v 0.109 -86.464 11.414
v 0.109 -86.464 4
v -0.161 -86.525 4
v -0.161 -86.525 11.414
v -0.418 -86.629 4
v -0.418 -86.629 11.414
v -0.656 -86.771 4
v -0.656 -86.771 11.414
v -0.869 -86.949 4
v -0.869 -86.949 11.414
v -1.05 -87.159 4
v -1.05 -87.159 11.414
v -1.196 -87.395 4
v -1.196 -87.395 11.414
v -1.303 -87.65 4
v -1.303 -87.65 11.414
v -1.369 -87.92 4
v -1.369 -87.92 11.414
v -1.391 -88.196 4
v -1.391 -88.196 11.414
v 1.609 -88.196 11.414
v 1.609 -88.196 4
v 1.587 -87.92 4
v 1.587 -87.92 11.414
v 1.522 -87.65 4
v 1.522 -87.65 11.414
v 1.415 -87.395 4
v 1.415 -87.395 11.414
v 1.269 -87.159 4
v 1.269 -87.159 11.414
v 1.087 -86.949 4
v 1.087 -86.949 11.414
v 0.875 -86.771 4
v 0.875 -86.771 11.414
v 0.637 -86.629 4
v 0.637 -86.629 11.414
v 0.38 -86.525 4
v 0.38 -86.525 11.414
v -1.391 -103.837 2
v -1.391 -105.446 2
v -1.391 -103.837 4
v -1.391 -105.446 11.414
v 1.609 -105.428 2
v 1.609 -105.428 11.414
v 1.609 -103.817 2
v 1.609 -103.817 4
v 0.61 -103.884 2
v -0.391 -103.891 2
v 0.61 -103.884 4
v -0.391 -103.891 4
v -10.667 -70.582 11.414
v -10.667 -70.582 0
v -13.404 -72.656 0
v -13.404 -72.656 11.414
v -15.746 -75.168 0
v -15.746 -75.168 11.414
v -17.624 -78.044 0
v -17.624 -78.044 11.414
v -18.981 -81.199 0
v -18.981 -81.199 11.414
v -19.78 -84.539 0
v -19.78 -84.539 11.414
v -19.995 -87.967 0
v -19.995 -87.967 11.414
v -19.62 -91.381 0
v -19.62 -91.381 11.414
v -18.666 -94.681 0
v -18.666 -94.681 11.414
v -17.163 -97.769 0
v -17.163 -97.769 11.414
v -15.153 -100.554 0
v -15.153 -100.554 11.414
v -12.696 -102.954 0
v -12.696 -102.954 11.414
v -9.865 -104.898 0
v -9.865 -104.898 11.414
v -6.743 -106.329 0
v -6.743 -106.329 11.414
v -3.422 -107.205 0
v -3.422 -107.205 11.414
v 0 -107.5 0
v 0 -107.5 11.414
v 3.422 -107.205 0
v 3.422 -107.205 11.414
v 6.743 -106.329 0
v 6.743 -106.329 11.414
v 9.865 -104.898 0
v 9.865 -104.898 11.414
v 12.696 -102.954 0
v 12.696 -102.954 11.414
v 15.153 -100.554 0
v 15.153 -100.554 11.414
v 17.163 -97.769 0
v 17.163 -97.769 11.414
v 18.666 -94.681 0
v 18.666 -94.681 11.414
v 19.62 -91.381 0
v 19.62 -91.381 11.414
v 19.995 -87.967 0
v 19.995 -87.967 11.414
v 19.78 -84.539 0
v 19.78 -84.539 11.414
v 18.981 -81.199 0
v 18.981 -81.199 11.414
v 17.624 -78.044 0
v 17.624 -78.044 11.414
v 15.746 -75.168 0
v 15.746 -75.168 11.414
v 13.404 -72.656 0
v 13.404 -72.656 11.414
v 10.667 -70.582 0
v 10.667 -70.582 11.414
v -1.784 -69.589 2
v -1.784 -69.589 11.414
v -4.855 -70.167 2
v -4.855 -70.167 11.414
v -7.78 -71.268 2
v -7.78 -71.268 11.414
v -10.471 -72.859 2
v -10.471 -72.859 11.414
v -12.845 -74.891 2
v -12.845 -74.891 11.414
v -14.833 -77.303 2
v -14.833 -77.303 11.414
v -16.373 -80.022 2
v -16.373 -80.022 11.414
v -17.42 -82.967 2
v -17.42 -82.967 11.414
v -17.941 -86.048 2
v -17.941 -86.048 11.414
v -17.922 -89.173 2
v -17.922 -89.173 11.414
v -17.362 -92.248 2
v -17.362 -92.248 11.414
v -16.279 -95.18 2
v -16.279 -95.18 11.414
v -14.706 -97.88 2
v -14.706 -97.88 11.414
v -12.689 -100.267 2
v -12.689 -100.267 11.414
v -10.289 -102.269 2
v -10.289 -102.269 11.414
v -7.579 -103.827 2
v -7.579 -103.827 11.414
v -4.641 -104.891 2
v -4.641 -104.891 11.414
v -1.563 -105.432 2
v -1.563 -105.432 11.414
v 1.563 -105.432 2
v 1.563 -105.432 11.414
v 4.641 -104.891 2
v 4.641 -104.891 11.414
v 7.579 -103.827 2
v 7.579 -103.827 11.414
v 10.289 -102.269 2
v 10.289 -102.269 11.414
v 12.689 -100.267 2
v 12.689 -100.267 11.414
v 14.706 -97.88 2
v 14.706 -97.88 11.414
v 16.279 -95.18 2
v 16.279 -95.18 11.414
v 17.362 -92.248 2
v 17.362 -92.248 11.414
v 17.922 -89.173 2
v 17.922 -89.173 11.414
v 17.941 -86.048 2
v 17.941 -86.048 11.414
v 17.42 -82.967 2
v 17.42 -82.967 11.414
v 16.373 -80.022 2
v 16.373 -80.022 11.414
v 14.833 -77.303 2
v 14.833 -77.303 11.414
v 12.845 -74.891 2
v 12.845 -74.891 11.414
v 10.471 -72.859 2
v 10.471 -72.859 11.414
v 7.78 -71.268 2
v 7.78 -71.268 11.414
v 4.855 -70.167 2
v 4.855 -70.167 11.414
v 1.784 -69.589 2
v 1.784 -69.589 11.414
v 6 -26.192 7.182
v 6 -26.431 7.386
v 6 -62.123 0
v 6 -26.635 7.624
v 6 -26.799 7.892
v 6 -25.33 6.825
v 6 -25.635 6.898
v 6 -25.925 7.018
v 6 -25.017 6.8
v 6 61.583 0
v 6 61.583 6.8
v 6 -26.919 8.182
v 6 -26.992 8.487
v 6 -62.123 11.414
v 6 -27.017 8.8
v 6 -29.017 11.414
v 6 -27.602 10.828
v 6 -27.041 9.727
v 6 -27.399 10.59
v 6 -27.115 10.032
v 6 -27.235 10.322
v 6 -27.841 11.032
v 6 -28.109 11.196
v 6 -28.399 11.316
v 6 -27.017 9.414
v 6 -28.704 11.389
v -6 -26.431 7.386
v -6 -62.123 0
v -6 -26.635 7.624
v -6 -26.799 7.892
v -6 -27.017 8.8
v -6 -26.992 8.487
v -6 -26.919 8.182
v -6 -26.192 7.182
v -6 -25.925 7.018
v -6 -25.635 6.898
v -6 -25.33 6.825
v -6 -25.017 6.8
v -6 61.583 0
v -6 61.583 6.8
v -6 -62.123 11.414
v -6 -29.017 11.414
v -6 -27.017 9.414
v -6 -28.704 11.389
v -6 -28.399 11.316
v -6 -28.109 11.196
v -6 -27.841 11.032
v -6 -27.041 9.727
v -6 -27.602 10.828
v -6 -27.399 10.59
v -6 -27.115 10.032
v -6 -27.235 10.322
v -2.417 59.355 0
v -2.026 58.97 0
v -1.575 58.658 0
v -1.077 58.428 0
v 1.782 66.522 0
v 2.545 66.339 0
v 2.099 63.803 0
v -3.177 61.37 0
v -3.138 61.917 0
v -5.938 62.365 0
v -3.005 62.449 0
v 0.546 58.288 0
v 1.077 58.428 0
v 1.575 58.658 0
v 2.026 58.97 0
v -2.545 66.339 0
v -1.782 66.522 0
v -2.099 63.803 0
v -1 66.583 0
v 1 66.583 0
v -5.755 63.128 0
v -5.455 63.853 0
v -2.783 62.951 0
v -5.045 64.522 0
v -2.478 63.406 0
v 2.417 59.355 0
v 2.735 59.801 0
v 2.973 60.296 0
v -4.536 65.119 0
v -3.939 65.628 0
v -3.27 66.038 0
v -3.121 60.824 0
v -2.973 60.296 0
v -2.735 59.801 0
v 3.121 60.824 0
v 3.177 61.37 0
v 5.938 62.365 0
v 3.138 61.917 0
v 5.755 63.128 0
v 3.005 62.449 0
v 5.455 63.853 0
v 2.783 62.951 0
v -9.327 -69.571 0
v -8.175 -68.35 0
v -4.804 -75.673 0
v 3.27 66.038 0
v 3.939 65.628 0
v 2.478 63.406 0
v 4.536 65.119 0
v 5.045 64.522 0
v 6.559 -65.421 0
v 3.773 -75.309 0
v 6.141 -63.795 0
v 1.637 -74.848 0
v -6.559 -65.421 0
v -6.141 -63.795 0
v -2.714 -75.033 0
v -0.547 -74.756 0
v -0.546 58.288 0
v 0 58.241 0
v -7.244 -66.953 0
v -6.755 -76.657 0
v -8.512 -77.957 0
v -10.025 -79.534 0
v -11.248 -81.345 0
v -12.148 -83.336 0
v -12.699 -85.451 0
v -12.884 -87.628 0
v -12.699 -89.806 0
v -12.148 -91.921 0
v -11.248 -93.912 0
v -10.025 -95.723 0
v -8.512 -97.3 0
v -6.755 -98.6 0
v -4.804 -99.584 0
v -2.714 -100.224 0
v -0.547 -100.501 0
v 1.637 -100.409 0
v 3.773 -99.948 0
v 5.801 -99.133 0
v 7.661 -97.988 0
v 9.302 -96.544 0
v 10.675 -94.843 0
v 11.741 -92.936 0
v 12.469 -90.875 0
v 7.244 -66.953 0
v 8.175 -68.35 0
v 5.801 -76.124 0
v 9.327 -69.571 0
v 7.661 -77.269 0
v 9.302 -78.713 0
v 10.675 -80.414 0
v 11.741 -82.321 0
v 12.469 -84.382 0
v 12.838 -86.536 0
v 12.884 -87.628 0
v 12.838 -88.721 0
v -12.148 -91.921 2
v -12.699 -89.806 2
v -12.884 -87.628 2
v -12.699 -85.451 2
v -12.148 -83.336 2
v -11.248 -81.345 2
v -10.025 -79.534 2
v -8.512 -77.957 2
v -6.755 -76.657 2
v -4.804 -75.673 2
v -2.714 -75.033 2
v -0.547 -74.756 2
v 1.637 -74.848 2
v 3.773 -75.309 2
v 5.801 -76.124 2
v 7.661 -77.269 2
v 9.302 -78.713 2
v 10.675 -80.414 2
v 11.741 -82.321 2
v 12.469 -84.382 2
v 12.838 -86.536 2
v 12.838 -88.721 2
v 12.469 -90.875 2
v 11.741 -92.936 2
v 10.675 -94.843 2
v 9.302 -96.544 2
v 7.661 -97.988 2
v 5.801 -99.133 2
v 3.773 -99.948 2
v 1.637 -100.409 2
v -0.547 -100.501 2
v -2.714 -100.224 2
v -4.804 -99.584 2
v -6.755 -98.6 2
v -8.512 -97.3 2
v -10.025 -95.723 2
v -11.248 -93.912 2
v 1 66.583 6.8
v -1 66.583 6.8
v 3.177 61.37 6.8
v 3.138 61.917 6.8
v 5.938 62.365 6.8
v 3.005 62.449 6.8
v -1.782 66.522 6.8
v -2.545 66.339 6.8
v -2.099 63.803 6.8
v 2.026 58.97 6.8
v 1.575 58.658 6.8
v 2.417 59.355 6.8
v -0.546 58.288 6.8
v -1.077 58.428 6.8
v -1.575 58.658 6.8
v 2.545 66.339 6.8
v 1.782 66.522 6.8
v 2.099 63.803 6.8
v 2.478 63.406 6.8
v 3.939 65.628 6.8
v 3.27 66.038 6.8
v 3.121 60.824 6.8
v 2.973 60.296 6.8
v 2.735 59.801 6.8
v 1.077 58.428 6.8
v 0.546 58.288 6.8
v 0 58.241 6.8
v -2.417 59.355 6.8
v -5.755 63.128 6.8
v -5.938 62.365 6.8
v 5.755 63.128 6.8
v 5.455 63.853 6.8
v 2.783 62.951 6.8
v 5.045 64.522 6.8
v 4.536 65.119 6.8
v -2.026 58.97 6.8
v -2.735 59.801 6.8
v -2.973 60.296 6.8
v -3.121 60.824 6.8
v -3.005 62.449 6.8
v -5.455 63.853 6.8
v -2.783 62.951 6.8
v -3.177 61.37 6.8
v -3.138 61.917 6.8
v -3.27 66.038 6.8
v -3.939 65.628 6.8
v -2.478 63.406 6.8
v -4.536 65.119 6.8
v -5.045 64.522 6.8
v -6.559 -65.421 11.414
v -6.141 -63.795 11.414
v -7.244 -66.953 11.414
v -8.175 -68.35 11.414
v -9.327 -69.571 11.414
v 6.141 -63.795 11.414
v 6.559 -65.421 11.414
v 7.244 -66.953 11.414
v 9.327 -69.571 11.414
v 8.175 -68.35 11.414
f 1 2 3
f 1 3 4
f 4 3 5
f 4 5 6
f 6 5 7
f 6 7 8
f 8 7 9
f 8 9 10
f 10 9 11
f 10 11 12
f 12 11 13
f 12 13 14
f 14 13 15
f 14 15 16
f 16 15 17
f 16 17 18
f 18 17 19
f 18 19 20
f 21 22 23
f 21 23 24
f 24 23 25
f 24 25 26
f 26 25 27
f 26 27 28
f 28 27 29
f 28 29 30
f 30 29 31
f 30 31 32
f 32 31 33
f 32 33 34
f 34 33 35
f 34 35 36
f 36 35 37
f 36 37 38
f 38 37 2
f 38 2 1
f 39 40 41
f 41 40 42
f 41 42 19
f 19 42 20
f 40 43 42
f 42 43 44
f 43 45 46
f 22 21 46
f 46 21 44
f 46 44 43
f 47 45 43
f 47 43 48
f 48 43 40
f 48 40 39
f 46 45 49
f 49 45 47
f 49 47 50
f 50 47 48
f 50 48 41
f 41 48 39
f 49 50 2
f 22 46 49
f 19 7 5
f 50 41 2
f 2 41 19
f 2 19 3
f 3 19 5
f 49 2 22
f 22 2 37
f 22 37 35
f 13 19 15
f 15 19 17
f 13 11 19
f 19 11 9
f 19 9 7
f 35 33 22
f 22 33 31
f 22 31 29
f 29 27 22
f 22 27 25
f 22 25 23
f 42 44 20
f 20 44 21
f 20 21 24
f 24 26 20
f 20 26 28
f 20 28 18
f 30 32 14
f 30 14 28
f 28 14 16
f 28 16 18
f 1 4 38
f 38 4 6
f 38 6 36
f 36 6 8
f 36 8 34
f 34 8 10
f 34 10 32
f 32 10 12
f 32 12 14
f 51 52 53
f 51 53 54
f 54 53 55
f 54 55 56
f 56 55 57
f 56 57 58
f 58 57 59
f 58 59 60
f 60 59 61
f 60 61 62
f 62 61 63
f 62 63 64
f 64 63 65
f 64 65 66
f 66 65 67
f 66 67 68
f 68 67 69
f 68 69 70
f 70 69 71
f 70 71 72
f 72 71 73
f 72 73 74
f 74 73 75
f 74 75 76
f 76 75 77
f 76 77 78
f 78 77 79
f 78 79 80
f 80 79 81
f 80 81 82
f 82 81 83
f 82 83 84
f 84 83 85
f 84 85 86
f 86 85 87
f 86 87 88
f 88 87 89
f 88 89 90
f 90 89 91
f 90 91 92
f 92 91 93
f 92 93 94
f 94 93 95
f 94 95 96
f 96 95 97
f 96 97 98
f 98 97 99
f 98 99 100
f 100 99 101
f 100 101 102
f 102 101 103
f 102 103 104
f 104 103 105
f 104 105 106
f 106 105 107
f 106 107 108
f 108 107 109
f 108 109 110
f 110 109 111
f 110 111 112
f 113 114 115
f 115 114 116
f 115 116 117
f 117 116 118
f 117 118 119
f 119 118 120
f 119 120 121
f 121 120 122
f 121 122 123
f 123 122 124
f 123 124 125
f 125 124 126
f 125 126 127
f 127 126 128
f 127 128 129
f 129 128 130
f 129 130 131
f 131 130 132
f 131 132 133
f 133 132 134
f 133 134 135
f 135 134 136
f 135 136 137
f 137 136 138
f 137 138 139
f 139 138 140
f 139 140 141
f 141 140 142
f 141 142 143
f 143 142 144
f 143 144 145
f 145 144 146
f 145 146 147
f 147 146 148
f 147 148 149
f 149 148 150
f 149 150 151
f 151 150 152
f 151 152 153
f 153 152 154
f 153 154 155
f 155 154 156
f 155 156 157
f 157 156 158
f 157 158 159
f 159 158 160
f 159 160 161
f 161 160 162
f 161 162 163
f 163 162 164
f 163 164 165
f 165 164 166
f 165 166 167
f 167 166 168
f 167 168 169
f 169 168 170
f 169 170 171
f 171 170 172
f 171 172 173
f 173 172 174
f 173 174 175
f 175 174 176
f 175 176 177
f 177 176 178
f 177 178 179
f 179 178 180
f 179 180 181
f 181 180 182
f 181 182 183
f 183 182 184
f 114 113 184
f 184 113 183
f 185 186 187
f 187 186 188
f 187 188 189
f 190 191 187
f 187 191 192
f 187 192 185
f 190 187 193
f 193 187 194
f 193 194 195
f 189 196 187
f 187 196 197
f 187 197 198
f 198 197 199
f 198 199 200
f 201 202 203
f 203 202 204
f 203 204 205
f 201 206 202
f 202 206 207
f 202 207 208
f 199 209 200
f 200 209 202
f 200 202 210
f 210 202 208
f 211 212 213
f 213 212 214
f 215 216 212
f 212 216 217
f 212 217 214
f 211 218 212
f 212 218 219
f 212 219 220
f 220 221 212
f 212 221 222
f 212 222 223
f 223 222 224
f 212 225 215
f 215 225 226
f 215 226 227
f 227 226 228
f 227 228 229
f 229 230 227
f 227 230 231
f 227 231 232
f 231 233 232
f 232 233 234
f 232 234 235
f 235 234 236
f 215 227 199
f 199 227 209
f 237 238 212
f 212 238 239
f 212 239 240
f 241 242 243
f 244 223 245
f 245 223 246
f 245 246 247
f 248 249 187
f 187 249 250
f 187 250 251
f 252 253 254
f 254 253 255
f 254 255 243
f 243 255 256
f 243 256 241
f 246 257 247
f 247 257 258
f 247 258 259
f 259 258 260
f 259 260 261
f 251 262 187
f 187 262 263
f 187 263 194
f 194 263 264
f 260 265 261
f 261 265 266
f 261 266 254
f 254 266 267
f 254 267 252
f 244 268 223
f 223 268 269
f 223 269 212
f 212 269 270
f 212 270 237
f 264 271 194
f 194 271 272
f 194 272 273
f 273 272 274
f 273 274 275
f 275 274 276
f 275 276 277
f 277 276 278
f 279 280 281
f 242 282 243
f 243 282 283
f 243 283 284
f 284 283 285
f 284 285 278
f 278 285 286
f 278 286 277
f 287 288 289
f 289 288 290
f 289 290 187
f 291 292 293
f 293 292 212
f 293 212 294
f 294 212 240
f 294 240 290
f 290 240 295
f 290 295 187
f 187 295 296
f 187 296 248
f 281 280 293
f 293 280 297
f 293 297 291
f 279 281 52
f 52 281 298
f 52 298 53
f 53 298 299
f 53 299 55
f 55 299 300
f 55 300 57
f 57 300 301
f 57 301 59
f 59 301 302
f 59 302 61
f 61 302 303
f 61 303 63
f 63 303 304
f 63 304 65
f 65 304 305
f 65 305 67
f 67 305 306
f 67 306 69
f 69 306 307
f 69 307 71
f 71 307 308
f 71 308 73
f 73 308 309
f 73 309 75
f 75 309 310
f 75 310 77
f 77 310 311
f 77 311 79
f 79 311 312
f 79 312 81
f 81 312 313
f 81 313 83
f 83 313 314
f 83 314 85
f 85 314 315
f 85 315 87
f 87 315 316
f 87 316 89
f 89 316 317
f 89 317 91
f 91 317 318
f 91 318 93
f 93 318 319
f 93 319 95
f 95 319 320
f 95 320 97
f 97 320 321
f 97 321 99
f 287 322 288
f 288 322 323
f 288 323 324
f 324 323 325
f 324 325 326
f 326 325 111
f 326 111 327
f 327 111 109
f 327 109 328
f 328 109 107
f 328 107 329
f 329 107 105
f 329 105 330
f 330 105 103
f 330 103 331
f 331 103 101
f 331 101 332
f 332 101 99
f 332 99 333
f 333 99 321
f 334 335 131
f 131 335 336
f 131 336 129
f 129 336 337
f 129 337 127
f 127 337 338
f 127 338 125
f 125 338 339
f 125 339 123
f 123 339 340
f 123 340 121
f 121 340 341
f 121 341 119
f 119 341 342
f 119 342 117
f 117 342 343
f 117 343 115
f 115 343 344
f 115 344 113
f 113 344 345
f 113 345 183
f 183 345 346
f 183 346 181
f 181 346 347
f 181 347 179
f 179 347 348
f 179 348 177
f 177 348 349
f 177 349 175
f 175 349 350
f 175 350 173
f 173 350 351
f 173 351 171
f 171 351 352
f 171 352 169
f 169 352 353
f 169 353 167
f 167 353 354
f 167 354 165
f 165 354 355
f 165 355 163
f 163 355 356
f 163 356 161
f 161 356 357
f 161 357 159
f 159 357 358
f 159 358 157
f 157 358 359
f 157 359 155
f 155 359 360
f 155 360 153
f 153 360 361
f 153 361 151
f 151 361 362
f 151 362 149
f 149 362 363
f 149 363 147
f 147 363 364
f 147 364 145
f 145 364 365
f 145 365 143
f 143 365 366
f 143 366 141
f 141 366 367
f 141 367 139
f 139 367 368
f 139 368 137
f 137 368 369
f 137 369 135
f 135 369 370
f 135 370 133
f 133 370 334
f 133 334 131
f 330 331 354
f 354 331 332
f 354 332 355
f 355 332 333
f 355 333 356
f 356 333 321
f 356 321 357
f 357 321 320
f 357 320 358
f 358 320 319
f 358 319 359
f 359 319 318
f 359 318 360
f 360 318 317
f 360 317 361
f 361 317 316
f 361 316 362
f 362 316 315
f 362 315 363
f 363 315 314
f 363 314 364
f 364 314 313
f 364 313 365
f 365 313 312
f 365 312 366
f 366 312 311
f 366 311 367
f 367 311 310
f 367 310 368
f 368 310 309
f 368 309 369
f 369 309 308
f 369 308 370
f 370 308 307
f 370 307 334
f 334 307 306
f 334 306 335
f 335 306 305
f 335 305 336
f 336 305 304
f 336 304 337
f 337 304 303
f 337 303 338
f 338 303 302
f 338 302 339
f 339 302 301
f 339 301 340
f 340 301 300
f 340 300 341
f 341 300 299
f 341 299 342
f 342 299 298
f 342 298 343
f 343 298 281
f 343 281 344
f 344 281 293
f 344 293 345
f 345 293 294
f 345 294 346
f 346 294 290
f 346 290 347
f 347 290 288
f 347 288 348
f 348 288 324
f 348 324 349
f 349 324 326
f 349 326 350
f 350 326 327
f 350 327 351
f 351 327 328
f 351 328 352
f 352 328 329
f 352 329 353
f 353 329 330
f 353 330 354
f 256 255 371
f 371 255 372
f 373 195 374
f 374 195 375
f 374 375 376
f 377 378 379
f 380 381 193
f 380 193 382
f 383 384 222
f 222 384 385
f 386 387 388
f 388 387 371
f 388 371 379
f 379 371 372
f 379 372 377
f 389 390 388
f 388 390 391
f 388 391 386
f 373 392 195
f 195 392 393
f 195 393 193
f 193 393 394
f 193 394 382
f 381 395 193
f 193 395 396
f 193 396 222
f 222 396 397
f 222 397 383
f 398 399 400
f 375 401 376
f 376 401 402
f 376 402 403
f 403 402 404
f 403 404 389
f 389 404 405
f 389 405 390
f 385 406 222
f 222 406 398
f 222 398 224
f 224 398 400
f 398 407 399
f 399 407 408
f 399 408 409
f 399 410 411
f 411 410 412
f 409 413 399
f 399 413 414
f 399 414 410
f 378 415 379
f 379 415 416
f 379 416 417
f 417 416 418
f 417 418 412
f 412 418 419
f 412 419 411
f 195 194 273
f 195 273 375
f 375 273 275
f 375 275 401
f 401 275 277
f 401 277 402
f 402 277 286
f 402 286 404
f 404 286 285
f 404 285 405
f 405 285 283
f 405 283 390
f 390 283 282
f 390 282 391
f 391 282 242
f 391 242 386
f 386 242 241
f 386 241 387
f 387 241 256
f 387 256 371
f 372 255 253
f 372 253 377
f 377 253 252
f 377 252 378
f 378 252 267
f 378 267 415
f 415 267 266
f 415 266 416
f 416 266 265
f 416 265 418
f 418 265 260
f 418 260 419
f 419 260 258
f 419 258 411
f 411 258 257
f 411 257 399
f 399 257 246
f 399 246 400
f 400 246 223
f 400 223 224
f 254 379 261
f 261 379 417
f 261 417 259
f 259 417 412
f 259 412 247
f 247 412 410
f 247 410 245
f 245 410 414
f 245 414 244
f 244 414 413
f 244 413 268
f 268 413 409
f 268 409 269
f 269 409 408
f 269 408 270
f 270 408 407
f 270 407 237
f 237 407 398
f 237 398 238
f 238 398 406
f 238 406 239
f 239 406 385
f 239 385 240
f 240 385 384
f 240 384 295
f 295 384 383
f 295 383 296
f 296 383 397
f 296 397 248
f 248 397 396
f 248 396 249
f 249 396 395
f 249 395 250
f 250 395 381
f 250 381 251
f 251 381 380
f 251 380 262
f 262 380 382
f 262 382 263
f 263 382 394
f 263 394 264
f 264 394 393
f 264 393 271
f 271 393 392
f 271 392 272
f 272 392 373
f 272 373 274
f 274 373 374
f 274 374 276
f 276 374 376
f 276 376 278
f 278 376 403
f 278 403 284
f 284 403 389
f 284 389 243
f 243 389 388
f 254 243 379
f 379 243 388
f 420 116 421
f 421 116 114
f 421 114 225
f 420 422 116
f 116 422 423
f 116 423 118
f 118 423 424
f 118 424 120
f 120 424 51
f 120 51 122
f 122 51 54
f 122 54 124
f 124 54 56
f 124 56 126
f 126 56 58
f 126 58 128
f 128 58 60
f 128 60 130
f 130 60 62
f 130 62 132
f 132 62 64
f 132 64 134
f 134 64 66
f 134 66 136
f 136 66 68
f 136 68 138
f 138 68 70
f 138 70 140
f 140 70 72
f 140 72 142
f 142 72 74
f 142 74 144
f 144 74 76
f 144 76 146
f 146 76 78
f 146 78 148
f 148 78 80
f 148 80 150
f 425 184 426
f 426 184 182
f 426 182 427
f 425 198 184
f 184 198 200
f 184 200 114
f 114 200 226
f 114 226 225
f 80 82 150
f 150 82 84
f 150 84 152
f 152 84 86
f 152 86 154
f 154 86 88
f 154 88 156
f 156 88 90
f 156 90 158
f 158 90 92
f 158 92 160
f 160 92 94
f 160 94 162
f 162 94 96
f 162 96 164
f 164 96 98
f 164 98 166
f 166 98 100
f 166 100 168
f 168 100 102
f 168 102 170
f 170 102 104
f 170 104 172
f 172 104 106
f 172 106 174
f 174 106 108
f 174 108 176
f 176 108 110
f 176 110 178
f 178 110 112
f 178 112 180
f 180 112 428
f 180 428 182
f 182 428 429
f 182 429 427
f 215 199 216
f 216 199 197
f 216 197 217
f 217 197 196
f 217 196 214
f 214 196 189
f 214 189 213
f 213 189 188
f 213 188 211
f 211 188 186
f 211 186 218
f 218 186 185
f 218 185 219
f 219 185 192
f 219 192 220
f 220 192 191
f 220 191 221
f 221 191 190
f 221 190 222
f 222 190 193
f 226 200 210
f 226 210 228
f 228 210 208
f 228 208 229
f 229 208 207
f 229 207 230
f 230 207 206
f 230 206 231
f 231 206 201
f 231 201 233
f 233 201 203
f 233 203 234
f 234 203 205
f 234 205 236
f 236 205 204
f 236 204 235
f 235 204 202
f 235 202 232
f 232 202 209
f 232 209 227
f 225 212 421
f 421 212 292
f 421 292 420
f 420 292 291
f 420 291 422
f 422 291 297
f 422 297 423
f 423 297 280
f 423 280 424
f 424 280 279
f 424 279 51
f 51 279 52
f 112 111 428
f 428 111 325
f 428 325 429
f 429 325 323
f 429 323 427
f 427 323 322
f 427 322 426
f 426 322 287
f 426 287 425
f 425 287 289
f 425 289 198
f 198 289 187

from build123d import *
from build123d.topology import SkipClean

# Parameters (mm, degrees)
BOSS_EXTRUDE1_DEPTH      = 13
BOSS_EXTRUDE1_2_DEPTH    = 13
BOSS_EXTRUDE2_DEPTH      = 13
CUT_EXTRUDE1_DEPTH       = 13
SKETCH3_W                = 6.626848164
SKETCH3_H                = 19.420298156
CUT_EXTRUDE2_DEPTH       = 13
FILLET1_R                = 10
SKETCH4_R                = 20
BOSS_EXTRUDE3_DEPTH      = 13
CUT_EXTRUDE3_DEPTH       = 13
SKETCH6_R                = 18
CUT_EXTRUDE4_DEPTH       = 24
BOSS_EXTRUDE7_DEPTH      = 22
FILLET5_R                = 1.75
FILLET6_R                = 20
SKETCH13_W               = 6.626848164
SKETCH13_H               = 84.326545424
CUT_EXTRUDE8_DEPTH       = 22
FILLET8_R                = 21.5
FILLET9_R                = 21.5
SKETCH14_W               = 17.060891399
SKETCH14_H               = 46.716771418
CUT_EXTRUDE10_DEPTH      = 22
SKETCH23_R               = 16.395826628
CUT_EXTRUDE14_DEPTH      = 4
BOSS_EXTRUDE16_DEPTH     = 2
SKETCH25_R               = 20.128500803
CUT_EXTRUDE15_DEPTH      = 9
SKETCH26_W               = 8.848519257
SKETCH26_H               = 26
CUT_EXTRUDE16_DEPTH      = 9
CUT_EXTRUDE17_DEPTH      = 9
FILLET21_R               = 3.5
SKETCH28_W               = 12
SKETCH28_H               = 42.572003563
BOSS_EXTRUDE20_DEPTH     = 15.8
BOSS_EXTRUDE21_START     = -6.8
SKETCH30_W               = 12
SKETCH30_H               = 93.599870645
BOSS_EXTRUDE21_DEPTH     = 6.8
FILLET23_R               = 5
BOSS_EXTRUDE22_DEPTH     = 6.8
CUT_EXTRUDE18_DEPTH      = 29
CUT_EXTRUDE18_DEPTH_BACK = 41
SKETCH34_W               = 5.585914081
SKETCH34_H               = 80.48337208
FILLET27_R               = 2
FILLET28_R               = 10


with BuildPart() as part:
    # Sketch1 → Boss-Extrude1 (new body)
    with BuildSketch(Plane.XY):
        with BuildLine():
            Line((4, -87.5), (-4, -87.5))
            Line((-4, -87.5), (-4, -67.904082058))
            ThreePointArc((-4, -67.904082058), (0, -107.5), (4, -67.904082058))
            Line((4, -67.904082058), (4, -87.5))
        make_face()
    extrude(amount=BOSS_EXTRUDE1_DEPTH)



with BuildPart() as body_2:
    # Sketch1 → Boss-Extrude1 2 (new body)
    with BuildSketch(Plane.XY):
        with BuildLine():
            Line((-4, 87.5), (-4, -67.904082058))
            ThreePointArc((-4, -67.904082058), (0, -67.5), (4, -67.904082058))
            Line((4, -67.904082058), (4, 87.5))
            ThreePointArc((4, 87.5), (0, 91.5), (-4, 87.5))
        make_face()
    extrude(amount=BOSS_EXTRUDE1_2_DEPTH)


with BuildPart() as part_1:
    add(part.part)

    add(body_2.part)  # Boss-Extrude2 merges body 2
    # Sketch1<3> → Boss-Extrude2 (add)
    with BuildSketch(Plane.XY):
        with BuildLine():
            Line((-4, -67.904082058), (-4, -87.5))
            Line((-4, -87.5), (4, -87.5))
            Line((4, -87.5), (4, -67.904082058))
            ThreePointArc((4, -67.904082058), (0, -67.5), (-4, -67.904082058))
        make_face()
        with BuildLine():
            Line((4, -87.5), (-4, -87.5))
            Line((-4, -87.5), (-4, -67.904082058))
            ThreePointArc((-4, -67.904082058), (-12.649110641, -102.991933385), (20, -87.5))
            ThreePointArc((20, -87.5), (15.491933385, -74.850889359), (4, -67.904082058))
            Line((4, -67.904082058), (4, -87.5))
        make_face()
    extrude(amount=BOSS_EXTRUDE2_DEPTH)

    # Sketch2 → Cut-Extrude1 (cut)
    with BuildSketch(Plane.XY.offset(13)):
        with BuildLine():
            Line((1.836704547, 90.02826846), (-1.836704547, 90.02826846))
            ThreePointArc((-1.836704547, 90.02826846), (-1.418788795, 84.715639507), (3.125, 87.5))
            ThreePointArc((3.125, 87.5), (2.784360493, 88.918788795), (1.836704547, 90.02826846))
        make_face()
    extrude(amount=-CUT_EXTRUDE1_DEPTH, mode=Mode.SUBTRACT)

    # Sketch3 → Cut-Extrude2 (cut)
    with BuildSketch(Plane(origin=(4, 0, 0), x_dir=(0, 0, -1), z_dir=(1, 0, 0))):
        with Locations((-9.686575918, 81.789850922)):
            Rectangle(SKETCH3_W, SKETCH3_H)
    extrude(amount=-CUT_EXTRUDE2_DEPTH, mode=Mode.SUBTRACT)

    # Fillet1
    # the kernel refuses this fillet: 10 mm, written as the material it adds along each edge
    with BuildSketch(Plane(origin=(4, 72.079701844, 6.373151836), x_dir=(0, 1, 0), z_dir=(-1, 0, 0))) as fillet1_piece_1:
        with BuildLine():
            CenterArc((9.413917712, -10), FILLET1_R, 90, 70.286615286)
            Line((0, -6.626848164), (-0.188278354, -6.559385127))
            ThreePointArc((-0.188278354, -6.559385127), (-0.2, -3.313424082), (-0.2, 0))
            Line((-0.2, 0), (0, 0.2))
            Line((0, 0.2), (9.413917712, 0.2))
            Line((9.413917712, 0.2), (9.413917712, 0))
        make_face()
    extrude(amount=8)

    # Sketch4 → Boss-Extrude3 (add)
    with BuildSketch(Plane.XY.offset(13)):
        with Locations(Location((0, -87.5, 0), (0, 0, 101.536959033))):
            Circle(SKETCH4_R)
    extrude(amount=BOSS_EXTRUDE3_DEPTH)

    # Sketch5 → Cut-Extrude3 (cut)
    with BuildSketch(Plane(origin=(4, 0, 0), x_dir=(0, 0, -1), z_dir=(1, 0, 0))):
        with BuildLine():
            Line((-13, 61.057159029), (-13, 87.5))
            Line((-13, 87.5), (-6.373151836, 87.5))
            ThreePointArc((-6.373151836, 87.5), (-7.529351989, 73.73795699), (-13, 61.057159029))
        make_face()
    extrude(amount=-CUT_EXTRUDE3_DEPTH, mode=Mode.SUBTRACT)

    # Sketch6 → Cut-Extrude4 (cut)
    with BuildSketch(Plane.XY.offset(26)):
        with Locations((0, -87.5)):
            Circle(SKETCH6_R)
    extrude(amount=-CUT_EXTRUDE4_DEPTH, mode=Mode.SUBTRACT)

    # Fillet6
    fillet6_edges = [part_1.edges().sort_by_distance(p)[0] for p in [
        (0, 61.057159029, 13),
    ]]
    fillet(fillet6_edges, radius=FILLET6_R)

    # Sketch13 → Cut-Extrude8 (cut)
    with BuildSketch(Plane.ZY.offset(4)):
        with Locations((9.686575918, 45.336727288)):
            Rectangle(SKETCH13_W, SKETCH13_H)
    extrude(amount=-CUT_EXTRUDE8_DEPTH, mode=Mode.SUBTRACT)

    # Fillet8
    # the kernel refuses this fillet: 21.5 mm, written as the material it adds along each edge
    with BuildSketch(Plane(origin=(-4, 3.173454576, 6.373151836), x_dir=(0, 1, 0), z_dir=(1, 0, 0))) as fillet8_piece_1:
        with BuildLine():
            CenterArc((15.525442166, 21.5), FILLET8_R, 223.770740898, 46.229259102)
            Line((0, 6.626848164), (-0.310508843, 6.329385127))
            ThreePointArc((-0.310508843, 6.329385127), (-0.43, 3.313424082), (-0.43, 0))
            Line((-0.43, 0), (0, -0.43))
            Line((0, -0.43), (15.525442166, -0.43))
            Line((15.525442166, -0.43), (15.525442166, 0))
        make_face()
    extrude(amount=8)

    # Fillet9
    fillet9_edges = [part_1.edges().sort_by_distance(p)[0] for p in [
        (0, 3.173454576, 13),
    ]]
    fillet(fillet9_edges, radius=FILLET9_R)

    # Sketch14 → Cut-Extrude10 (cut)
    with BuildSketch(Plane.ZY.offset(4)):
        with Locations((14.903597536, -4.659488967)):
            Rectangle(SKETCH14_W, SKETCH14_H)
    extrude(amount=-CUT_EXTRUDE10_DEPTH, mode=Mode.SUBTRACT)


with BuildPart() as body_2_2:
    # Sketch8 → Boss-Extrude7 (new body)
    with BuildSketch(Plane.XY.offset(2)):
        Polygon((-1.390650573, -105.446199904), (-1.390650573, -86.446199904), (1.609349427, -86.446199904), (1.609349427, -105.427911045), align=None)
    extrude(amount=BOSS_EXTRUDE7_DEPTH)

    # Fillet5
    # the kernel refuses this fillet: 1.75 mm, written as the material it takes off along each edge
    with BuildSketch(Plane(origin=(1.609349427, -86.446199904, -2.375), x_dir=(-1, 0, 0), z_dir=(0, 0, 1)), Plane(origin=(-1.390650573, -86.446199904, -2.375), x_dir=(0, -1, 0), z_dir=(0, 0, 1))) as fillet5_piece_1:
        with BuildLine():
            CenterArc((FILLET5_R, FILLET5_R), FILLET5_R, 180, 90)
            Line((0, FILLET5_R), (0, 0))
            Line((0, 0), (FILLET5_R, 0))
        make_face()
    extrude(amount=30.75, mode=Mode.SUBTRACT)


with BuildPart() as cut_extrude14_tool:
    # Sketch23 → Cut-Extrude14 (new body)
    with BuildSketch(Plane(origin=(0, 0, 0), x_dir=(-1, 0, 0), z_dir=(0, 0, -1))):
        with Locations((0, -87.5)):
            Circle(SKETCH23_R)
    extrude(amount=-CUT_EXTRUDE14_DEPTH)


with BuildPart() as part_2:
    add(part_1.part)

    # Cut-Extrude14: cut by cut_extrude14_tool
    add(cut_extrude14_tool.part, mode=Mode.SUBTRACT)

    # Sketch24 → Boss-Extrude16 (add)
    with BuildSketch(Plane(origin=(0, 0, 0), x_dir=(-1, 0, 0), z_dir=(0, 0, -1))):
        with BuildLine():
            ThreePointArc((0, -71.104173372), (-16.395826628, -87.5), (0, -103.895826628))
            ThreePointArc((0, -103.895826628), (16.395826628, -87.5), (0, -71.104173372))
        make_face()
        with BuildLine():
            ThreePointArc((0, -74.744099259), (12.884401545, -87.628500803), (0, -100.512902348))
            ThreePointArc((0, -100.512902348), (-12.884401545, -87.628500803), (0, -74.744099259))
        make_face(mode=Mode.SUBTRACT)
    extrude(amount=-BOSS_EXTRUDE16_DEPTH)


with BuildPart() as body_2_2_1:
    add(body_2_2.part)

    # Cut-Extrude14: cut by cut_extrude14_tool
    add(cut_extrude14_tool.part, mode=Mode.SUBTRACT)


with BuildPart() as cut_extrude15_tool:
    # Sketch25 → Cut-Extrude15 (new body)
    with BuildSketch(Plane.XY.offset(26)):
        with Locations((0, -87.628500803)):
            Circle(SKETCH25_R)
    extrude(amount=-CUT_EXTRUDE15_DEPTH)


with BuildPart() as part_3:
    add(part_2.part)

    # Cut-Extrude15: cut by cut_extrude15_tool
    add(cut_extrude15_tool.part, mode=Mode.SUBTRACT)

    # Sketch26 → Cut-Extrude16 (cut)
    with BuildSketch(Plane.XY.offset(6.373151836)):
        with Locations((0.424259629, 79.373396417)):
            Rectangle(SKETCH26_W, SKETCH26_H)
    extrude(amount=-CUT_EXTRUDE16_DEPTH, mode=Mode.SUBTRACT)

    # Sketch27 → Cut-Extrude17 (cut)
    with BuildSketch(Plane.XY.offset(6.373151836)):
        with BuildLine():
            Line((2.132304127, 63.840504789), (-2.132304127, 63.840504789))
            ThreePointArc((-2.132304127, 63.840504789), (-1.329315567, 58.476984755), (3.22736468, 61.417869469))
            ThreePointArc((3.22736468, 61.417869469), (2.940884714, 62.747185037), (2.132304127, 63.840504789))
        make_face()
    extrude(amount=-CUT_EXTRUDE17_DEPTH, mode=Mode.SUBTRACT)

    # Fillet21
    fillet21_edges = [part_3.edges().sort_by_distance(p)[0] for p in [
        (4, 66.373396417, 3.186575918),
        (-4, 66.373396417, 3.186575918),
    ]]
    fillet(fillet21_edges, radius=FILLET21_R)

    # Sketch28 → Boss-Extrude20 (add)
    with BuildSketch(Plane(origin=(0, 0, 0), x_dir=(-1, 0, 0), z_dir=(0, 0, -1))):
        with Locations((0, -48.302629702)):
            Rectangle(SKETCH28_W, SKETCH28_H)
    extrude(amount=-BOSS_EXTRUDE20_DEPTH)

    # Sketch30 → Boss-Extrude21 (add)
    with SkipClean():  # the faces are left unmerged after this step: merging them gives an invalid solid
        with BuildSketch(Plane(origin=(0, 0, 0), x_dir=(-1, 0, 0), z_dir=(0, 0, -1)).offset(BOSS_EXTRUDE21_START)):
            with Locations((0, 19.783307403)):
                Rectangle(SKETCH30_W, SKETCH30_H)
            with BuildLine():
                Line((2.132304127, 63.840504789), (-2.132304127, 63.840504789))
                ThreePointArc((-2.132304127, 63.840504789), (0, 58.190504789), (2.132304127, 63.840504789))
            make_face(mode=Mode.SUBTRACT)
        extrude(amount=BOSS_EXTRUDE21_DEPTH)

    # Fillet23
    fillet23_edges = [part_3.edges().sort_by_distance(p)[0] for p in [
        (6, 66.583242725, 3.4),
        (-6, 66.583242725, 3.4),
    ]]
    fillet(fillet23_edges, radius=FILLET23_R)

    # Sketch33 → Boss-Extrude22 (add)
    with BuildSketch(Plane.XY.offset(6.8)):
        with BuildLine():
            Line((-2.132304127, 63.840504789), (2.132304127, 63.840504789))
            ThreePointArc((2.132304127, 63.840504789), (0, 58.190504789), (-2.132304127, 63.840504789))
        make_face()
        with BuildLine():
            Line((-2.09926937, 63.802972072), (2.09926937, 63.802972072))
            ThreePointArc((2.09926937, 63.802972072), (0, 58.240504789), (-2.09926937, 63.802972072))
        make_face(mode=Mode.SUBTRACT)
    extrude(amount=-BOSS_EXTRUDE22_DEPTH)


with BuildPart() as body_2_2_2:
    add(body_2_2_1.part)

    # Cut-Extrude15: cut by cut_extrude15_tool
    add(cut_extrude15_tool.part, mode=Mode.SUBTRACT)


with BuildPart() as cut_extrude18_tool:
    # Sketch34 → Cut-Extrude18 (new, two sides: drawn at the far end of the back side and taken through both)
    with BuildSketch(Plane.ZY.offset(6).offset(-CUT_EXTRUDE18_DEPTH_BACK)):
        with Locations((14.20704296, -67.25831396)):
            Rectangle(SKETCH34_W, SKETCH34_H)
    extrude(amount=CUT_EXTRUDE18_DEPTH + CUT_EXTRUDE18_DEPTH_BACK)


with BuildPart() as part_4:
    add(part_3.part)

    # Cut-Extrude18: cut by cut_extrude18_tool
    add(cut_extrude18_tool.part, mode=Mode.SUBTRACT)

    # Fillet27
    fillet27_edges = [part_4.edges().sort_by_distance(p)[0] for p in [
        (0, -27.01662792, 6.8),
        (0, -27.01662792, 11.414085919),
    ]]
    fillet(fillet27_edges, radius=FILLET27_R)

    # Fillet28
    fillet28_edges = [part_4.edges().sort_by_distance(p)[0] for p in [
        (6, -68.421215972, 5.707042959),
        (-6, -68.421215972, 5.707042959),
    ]]
    fillet(fillet28_edges, radius=FILLET28_R)


with BuildPart() as body_2_2_3:
    add(body_2_2_2.part)

    # Cut-Extrude18: cut by cut_extrude18_tool
    add(cut_extrude18_tool.part, mode=Mode.SUBTRACT)


solid = Compound([part_4.part, body_2_2_3.part])
